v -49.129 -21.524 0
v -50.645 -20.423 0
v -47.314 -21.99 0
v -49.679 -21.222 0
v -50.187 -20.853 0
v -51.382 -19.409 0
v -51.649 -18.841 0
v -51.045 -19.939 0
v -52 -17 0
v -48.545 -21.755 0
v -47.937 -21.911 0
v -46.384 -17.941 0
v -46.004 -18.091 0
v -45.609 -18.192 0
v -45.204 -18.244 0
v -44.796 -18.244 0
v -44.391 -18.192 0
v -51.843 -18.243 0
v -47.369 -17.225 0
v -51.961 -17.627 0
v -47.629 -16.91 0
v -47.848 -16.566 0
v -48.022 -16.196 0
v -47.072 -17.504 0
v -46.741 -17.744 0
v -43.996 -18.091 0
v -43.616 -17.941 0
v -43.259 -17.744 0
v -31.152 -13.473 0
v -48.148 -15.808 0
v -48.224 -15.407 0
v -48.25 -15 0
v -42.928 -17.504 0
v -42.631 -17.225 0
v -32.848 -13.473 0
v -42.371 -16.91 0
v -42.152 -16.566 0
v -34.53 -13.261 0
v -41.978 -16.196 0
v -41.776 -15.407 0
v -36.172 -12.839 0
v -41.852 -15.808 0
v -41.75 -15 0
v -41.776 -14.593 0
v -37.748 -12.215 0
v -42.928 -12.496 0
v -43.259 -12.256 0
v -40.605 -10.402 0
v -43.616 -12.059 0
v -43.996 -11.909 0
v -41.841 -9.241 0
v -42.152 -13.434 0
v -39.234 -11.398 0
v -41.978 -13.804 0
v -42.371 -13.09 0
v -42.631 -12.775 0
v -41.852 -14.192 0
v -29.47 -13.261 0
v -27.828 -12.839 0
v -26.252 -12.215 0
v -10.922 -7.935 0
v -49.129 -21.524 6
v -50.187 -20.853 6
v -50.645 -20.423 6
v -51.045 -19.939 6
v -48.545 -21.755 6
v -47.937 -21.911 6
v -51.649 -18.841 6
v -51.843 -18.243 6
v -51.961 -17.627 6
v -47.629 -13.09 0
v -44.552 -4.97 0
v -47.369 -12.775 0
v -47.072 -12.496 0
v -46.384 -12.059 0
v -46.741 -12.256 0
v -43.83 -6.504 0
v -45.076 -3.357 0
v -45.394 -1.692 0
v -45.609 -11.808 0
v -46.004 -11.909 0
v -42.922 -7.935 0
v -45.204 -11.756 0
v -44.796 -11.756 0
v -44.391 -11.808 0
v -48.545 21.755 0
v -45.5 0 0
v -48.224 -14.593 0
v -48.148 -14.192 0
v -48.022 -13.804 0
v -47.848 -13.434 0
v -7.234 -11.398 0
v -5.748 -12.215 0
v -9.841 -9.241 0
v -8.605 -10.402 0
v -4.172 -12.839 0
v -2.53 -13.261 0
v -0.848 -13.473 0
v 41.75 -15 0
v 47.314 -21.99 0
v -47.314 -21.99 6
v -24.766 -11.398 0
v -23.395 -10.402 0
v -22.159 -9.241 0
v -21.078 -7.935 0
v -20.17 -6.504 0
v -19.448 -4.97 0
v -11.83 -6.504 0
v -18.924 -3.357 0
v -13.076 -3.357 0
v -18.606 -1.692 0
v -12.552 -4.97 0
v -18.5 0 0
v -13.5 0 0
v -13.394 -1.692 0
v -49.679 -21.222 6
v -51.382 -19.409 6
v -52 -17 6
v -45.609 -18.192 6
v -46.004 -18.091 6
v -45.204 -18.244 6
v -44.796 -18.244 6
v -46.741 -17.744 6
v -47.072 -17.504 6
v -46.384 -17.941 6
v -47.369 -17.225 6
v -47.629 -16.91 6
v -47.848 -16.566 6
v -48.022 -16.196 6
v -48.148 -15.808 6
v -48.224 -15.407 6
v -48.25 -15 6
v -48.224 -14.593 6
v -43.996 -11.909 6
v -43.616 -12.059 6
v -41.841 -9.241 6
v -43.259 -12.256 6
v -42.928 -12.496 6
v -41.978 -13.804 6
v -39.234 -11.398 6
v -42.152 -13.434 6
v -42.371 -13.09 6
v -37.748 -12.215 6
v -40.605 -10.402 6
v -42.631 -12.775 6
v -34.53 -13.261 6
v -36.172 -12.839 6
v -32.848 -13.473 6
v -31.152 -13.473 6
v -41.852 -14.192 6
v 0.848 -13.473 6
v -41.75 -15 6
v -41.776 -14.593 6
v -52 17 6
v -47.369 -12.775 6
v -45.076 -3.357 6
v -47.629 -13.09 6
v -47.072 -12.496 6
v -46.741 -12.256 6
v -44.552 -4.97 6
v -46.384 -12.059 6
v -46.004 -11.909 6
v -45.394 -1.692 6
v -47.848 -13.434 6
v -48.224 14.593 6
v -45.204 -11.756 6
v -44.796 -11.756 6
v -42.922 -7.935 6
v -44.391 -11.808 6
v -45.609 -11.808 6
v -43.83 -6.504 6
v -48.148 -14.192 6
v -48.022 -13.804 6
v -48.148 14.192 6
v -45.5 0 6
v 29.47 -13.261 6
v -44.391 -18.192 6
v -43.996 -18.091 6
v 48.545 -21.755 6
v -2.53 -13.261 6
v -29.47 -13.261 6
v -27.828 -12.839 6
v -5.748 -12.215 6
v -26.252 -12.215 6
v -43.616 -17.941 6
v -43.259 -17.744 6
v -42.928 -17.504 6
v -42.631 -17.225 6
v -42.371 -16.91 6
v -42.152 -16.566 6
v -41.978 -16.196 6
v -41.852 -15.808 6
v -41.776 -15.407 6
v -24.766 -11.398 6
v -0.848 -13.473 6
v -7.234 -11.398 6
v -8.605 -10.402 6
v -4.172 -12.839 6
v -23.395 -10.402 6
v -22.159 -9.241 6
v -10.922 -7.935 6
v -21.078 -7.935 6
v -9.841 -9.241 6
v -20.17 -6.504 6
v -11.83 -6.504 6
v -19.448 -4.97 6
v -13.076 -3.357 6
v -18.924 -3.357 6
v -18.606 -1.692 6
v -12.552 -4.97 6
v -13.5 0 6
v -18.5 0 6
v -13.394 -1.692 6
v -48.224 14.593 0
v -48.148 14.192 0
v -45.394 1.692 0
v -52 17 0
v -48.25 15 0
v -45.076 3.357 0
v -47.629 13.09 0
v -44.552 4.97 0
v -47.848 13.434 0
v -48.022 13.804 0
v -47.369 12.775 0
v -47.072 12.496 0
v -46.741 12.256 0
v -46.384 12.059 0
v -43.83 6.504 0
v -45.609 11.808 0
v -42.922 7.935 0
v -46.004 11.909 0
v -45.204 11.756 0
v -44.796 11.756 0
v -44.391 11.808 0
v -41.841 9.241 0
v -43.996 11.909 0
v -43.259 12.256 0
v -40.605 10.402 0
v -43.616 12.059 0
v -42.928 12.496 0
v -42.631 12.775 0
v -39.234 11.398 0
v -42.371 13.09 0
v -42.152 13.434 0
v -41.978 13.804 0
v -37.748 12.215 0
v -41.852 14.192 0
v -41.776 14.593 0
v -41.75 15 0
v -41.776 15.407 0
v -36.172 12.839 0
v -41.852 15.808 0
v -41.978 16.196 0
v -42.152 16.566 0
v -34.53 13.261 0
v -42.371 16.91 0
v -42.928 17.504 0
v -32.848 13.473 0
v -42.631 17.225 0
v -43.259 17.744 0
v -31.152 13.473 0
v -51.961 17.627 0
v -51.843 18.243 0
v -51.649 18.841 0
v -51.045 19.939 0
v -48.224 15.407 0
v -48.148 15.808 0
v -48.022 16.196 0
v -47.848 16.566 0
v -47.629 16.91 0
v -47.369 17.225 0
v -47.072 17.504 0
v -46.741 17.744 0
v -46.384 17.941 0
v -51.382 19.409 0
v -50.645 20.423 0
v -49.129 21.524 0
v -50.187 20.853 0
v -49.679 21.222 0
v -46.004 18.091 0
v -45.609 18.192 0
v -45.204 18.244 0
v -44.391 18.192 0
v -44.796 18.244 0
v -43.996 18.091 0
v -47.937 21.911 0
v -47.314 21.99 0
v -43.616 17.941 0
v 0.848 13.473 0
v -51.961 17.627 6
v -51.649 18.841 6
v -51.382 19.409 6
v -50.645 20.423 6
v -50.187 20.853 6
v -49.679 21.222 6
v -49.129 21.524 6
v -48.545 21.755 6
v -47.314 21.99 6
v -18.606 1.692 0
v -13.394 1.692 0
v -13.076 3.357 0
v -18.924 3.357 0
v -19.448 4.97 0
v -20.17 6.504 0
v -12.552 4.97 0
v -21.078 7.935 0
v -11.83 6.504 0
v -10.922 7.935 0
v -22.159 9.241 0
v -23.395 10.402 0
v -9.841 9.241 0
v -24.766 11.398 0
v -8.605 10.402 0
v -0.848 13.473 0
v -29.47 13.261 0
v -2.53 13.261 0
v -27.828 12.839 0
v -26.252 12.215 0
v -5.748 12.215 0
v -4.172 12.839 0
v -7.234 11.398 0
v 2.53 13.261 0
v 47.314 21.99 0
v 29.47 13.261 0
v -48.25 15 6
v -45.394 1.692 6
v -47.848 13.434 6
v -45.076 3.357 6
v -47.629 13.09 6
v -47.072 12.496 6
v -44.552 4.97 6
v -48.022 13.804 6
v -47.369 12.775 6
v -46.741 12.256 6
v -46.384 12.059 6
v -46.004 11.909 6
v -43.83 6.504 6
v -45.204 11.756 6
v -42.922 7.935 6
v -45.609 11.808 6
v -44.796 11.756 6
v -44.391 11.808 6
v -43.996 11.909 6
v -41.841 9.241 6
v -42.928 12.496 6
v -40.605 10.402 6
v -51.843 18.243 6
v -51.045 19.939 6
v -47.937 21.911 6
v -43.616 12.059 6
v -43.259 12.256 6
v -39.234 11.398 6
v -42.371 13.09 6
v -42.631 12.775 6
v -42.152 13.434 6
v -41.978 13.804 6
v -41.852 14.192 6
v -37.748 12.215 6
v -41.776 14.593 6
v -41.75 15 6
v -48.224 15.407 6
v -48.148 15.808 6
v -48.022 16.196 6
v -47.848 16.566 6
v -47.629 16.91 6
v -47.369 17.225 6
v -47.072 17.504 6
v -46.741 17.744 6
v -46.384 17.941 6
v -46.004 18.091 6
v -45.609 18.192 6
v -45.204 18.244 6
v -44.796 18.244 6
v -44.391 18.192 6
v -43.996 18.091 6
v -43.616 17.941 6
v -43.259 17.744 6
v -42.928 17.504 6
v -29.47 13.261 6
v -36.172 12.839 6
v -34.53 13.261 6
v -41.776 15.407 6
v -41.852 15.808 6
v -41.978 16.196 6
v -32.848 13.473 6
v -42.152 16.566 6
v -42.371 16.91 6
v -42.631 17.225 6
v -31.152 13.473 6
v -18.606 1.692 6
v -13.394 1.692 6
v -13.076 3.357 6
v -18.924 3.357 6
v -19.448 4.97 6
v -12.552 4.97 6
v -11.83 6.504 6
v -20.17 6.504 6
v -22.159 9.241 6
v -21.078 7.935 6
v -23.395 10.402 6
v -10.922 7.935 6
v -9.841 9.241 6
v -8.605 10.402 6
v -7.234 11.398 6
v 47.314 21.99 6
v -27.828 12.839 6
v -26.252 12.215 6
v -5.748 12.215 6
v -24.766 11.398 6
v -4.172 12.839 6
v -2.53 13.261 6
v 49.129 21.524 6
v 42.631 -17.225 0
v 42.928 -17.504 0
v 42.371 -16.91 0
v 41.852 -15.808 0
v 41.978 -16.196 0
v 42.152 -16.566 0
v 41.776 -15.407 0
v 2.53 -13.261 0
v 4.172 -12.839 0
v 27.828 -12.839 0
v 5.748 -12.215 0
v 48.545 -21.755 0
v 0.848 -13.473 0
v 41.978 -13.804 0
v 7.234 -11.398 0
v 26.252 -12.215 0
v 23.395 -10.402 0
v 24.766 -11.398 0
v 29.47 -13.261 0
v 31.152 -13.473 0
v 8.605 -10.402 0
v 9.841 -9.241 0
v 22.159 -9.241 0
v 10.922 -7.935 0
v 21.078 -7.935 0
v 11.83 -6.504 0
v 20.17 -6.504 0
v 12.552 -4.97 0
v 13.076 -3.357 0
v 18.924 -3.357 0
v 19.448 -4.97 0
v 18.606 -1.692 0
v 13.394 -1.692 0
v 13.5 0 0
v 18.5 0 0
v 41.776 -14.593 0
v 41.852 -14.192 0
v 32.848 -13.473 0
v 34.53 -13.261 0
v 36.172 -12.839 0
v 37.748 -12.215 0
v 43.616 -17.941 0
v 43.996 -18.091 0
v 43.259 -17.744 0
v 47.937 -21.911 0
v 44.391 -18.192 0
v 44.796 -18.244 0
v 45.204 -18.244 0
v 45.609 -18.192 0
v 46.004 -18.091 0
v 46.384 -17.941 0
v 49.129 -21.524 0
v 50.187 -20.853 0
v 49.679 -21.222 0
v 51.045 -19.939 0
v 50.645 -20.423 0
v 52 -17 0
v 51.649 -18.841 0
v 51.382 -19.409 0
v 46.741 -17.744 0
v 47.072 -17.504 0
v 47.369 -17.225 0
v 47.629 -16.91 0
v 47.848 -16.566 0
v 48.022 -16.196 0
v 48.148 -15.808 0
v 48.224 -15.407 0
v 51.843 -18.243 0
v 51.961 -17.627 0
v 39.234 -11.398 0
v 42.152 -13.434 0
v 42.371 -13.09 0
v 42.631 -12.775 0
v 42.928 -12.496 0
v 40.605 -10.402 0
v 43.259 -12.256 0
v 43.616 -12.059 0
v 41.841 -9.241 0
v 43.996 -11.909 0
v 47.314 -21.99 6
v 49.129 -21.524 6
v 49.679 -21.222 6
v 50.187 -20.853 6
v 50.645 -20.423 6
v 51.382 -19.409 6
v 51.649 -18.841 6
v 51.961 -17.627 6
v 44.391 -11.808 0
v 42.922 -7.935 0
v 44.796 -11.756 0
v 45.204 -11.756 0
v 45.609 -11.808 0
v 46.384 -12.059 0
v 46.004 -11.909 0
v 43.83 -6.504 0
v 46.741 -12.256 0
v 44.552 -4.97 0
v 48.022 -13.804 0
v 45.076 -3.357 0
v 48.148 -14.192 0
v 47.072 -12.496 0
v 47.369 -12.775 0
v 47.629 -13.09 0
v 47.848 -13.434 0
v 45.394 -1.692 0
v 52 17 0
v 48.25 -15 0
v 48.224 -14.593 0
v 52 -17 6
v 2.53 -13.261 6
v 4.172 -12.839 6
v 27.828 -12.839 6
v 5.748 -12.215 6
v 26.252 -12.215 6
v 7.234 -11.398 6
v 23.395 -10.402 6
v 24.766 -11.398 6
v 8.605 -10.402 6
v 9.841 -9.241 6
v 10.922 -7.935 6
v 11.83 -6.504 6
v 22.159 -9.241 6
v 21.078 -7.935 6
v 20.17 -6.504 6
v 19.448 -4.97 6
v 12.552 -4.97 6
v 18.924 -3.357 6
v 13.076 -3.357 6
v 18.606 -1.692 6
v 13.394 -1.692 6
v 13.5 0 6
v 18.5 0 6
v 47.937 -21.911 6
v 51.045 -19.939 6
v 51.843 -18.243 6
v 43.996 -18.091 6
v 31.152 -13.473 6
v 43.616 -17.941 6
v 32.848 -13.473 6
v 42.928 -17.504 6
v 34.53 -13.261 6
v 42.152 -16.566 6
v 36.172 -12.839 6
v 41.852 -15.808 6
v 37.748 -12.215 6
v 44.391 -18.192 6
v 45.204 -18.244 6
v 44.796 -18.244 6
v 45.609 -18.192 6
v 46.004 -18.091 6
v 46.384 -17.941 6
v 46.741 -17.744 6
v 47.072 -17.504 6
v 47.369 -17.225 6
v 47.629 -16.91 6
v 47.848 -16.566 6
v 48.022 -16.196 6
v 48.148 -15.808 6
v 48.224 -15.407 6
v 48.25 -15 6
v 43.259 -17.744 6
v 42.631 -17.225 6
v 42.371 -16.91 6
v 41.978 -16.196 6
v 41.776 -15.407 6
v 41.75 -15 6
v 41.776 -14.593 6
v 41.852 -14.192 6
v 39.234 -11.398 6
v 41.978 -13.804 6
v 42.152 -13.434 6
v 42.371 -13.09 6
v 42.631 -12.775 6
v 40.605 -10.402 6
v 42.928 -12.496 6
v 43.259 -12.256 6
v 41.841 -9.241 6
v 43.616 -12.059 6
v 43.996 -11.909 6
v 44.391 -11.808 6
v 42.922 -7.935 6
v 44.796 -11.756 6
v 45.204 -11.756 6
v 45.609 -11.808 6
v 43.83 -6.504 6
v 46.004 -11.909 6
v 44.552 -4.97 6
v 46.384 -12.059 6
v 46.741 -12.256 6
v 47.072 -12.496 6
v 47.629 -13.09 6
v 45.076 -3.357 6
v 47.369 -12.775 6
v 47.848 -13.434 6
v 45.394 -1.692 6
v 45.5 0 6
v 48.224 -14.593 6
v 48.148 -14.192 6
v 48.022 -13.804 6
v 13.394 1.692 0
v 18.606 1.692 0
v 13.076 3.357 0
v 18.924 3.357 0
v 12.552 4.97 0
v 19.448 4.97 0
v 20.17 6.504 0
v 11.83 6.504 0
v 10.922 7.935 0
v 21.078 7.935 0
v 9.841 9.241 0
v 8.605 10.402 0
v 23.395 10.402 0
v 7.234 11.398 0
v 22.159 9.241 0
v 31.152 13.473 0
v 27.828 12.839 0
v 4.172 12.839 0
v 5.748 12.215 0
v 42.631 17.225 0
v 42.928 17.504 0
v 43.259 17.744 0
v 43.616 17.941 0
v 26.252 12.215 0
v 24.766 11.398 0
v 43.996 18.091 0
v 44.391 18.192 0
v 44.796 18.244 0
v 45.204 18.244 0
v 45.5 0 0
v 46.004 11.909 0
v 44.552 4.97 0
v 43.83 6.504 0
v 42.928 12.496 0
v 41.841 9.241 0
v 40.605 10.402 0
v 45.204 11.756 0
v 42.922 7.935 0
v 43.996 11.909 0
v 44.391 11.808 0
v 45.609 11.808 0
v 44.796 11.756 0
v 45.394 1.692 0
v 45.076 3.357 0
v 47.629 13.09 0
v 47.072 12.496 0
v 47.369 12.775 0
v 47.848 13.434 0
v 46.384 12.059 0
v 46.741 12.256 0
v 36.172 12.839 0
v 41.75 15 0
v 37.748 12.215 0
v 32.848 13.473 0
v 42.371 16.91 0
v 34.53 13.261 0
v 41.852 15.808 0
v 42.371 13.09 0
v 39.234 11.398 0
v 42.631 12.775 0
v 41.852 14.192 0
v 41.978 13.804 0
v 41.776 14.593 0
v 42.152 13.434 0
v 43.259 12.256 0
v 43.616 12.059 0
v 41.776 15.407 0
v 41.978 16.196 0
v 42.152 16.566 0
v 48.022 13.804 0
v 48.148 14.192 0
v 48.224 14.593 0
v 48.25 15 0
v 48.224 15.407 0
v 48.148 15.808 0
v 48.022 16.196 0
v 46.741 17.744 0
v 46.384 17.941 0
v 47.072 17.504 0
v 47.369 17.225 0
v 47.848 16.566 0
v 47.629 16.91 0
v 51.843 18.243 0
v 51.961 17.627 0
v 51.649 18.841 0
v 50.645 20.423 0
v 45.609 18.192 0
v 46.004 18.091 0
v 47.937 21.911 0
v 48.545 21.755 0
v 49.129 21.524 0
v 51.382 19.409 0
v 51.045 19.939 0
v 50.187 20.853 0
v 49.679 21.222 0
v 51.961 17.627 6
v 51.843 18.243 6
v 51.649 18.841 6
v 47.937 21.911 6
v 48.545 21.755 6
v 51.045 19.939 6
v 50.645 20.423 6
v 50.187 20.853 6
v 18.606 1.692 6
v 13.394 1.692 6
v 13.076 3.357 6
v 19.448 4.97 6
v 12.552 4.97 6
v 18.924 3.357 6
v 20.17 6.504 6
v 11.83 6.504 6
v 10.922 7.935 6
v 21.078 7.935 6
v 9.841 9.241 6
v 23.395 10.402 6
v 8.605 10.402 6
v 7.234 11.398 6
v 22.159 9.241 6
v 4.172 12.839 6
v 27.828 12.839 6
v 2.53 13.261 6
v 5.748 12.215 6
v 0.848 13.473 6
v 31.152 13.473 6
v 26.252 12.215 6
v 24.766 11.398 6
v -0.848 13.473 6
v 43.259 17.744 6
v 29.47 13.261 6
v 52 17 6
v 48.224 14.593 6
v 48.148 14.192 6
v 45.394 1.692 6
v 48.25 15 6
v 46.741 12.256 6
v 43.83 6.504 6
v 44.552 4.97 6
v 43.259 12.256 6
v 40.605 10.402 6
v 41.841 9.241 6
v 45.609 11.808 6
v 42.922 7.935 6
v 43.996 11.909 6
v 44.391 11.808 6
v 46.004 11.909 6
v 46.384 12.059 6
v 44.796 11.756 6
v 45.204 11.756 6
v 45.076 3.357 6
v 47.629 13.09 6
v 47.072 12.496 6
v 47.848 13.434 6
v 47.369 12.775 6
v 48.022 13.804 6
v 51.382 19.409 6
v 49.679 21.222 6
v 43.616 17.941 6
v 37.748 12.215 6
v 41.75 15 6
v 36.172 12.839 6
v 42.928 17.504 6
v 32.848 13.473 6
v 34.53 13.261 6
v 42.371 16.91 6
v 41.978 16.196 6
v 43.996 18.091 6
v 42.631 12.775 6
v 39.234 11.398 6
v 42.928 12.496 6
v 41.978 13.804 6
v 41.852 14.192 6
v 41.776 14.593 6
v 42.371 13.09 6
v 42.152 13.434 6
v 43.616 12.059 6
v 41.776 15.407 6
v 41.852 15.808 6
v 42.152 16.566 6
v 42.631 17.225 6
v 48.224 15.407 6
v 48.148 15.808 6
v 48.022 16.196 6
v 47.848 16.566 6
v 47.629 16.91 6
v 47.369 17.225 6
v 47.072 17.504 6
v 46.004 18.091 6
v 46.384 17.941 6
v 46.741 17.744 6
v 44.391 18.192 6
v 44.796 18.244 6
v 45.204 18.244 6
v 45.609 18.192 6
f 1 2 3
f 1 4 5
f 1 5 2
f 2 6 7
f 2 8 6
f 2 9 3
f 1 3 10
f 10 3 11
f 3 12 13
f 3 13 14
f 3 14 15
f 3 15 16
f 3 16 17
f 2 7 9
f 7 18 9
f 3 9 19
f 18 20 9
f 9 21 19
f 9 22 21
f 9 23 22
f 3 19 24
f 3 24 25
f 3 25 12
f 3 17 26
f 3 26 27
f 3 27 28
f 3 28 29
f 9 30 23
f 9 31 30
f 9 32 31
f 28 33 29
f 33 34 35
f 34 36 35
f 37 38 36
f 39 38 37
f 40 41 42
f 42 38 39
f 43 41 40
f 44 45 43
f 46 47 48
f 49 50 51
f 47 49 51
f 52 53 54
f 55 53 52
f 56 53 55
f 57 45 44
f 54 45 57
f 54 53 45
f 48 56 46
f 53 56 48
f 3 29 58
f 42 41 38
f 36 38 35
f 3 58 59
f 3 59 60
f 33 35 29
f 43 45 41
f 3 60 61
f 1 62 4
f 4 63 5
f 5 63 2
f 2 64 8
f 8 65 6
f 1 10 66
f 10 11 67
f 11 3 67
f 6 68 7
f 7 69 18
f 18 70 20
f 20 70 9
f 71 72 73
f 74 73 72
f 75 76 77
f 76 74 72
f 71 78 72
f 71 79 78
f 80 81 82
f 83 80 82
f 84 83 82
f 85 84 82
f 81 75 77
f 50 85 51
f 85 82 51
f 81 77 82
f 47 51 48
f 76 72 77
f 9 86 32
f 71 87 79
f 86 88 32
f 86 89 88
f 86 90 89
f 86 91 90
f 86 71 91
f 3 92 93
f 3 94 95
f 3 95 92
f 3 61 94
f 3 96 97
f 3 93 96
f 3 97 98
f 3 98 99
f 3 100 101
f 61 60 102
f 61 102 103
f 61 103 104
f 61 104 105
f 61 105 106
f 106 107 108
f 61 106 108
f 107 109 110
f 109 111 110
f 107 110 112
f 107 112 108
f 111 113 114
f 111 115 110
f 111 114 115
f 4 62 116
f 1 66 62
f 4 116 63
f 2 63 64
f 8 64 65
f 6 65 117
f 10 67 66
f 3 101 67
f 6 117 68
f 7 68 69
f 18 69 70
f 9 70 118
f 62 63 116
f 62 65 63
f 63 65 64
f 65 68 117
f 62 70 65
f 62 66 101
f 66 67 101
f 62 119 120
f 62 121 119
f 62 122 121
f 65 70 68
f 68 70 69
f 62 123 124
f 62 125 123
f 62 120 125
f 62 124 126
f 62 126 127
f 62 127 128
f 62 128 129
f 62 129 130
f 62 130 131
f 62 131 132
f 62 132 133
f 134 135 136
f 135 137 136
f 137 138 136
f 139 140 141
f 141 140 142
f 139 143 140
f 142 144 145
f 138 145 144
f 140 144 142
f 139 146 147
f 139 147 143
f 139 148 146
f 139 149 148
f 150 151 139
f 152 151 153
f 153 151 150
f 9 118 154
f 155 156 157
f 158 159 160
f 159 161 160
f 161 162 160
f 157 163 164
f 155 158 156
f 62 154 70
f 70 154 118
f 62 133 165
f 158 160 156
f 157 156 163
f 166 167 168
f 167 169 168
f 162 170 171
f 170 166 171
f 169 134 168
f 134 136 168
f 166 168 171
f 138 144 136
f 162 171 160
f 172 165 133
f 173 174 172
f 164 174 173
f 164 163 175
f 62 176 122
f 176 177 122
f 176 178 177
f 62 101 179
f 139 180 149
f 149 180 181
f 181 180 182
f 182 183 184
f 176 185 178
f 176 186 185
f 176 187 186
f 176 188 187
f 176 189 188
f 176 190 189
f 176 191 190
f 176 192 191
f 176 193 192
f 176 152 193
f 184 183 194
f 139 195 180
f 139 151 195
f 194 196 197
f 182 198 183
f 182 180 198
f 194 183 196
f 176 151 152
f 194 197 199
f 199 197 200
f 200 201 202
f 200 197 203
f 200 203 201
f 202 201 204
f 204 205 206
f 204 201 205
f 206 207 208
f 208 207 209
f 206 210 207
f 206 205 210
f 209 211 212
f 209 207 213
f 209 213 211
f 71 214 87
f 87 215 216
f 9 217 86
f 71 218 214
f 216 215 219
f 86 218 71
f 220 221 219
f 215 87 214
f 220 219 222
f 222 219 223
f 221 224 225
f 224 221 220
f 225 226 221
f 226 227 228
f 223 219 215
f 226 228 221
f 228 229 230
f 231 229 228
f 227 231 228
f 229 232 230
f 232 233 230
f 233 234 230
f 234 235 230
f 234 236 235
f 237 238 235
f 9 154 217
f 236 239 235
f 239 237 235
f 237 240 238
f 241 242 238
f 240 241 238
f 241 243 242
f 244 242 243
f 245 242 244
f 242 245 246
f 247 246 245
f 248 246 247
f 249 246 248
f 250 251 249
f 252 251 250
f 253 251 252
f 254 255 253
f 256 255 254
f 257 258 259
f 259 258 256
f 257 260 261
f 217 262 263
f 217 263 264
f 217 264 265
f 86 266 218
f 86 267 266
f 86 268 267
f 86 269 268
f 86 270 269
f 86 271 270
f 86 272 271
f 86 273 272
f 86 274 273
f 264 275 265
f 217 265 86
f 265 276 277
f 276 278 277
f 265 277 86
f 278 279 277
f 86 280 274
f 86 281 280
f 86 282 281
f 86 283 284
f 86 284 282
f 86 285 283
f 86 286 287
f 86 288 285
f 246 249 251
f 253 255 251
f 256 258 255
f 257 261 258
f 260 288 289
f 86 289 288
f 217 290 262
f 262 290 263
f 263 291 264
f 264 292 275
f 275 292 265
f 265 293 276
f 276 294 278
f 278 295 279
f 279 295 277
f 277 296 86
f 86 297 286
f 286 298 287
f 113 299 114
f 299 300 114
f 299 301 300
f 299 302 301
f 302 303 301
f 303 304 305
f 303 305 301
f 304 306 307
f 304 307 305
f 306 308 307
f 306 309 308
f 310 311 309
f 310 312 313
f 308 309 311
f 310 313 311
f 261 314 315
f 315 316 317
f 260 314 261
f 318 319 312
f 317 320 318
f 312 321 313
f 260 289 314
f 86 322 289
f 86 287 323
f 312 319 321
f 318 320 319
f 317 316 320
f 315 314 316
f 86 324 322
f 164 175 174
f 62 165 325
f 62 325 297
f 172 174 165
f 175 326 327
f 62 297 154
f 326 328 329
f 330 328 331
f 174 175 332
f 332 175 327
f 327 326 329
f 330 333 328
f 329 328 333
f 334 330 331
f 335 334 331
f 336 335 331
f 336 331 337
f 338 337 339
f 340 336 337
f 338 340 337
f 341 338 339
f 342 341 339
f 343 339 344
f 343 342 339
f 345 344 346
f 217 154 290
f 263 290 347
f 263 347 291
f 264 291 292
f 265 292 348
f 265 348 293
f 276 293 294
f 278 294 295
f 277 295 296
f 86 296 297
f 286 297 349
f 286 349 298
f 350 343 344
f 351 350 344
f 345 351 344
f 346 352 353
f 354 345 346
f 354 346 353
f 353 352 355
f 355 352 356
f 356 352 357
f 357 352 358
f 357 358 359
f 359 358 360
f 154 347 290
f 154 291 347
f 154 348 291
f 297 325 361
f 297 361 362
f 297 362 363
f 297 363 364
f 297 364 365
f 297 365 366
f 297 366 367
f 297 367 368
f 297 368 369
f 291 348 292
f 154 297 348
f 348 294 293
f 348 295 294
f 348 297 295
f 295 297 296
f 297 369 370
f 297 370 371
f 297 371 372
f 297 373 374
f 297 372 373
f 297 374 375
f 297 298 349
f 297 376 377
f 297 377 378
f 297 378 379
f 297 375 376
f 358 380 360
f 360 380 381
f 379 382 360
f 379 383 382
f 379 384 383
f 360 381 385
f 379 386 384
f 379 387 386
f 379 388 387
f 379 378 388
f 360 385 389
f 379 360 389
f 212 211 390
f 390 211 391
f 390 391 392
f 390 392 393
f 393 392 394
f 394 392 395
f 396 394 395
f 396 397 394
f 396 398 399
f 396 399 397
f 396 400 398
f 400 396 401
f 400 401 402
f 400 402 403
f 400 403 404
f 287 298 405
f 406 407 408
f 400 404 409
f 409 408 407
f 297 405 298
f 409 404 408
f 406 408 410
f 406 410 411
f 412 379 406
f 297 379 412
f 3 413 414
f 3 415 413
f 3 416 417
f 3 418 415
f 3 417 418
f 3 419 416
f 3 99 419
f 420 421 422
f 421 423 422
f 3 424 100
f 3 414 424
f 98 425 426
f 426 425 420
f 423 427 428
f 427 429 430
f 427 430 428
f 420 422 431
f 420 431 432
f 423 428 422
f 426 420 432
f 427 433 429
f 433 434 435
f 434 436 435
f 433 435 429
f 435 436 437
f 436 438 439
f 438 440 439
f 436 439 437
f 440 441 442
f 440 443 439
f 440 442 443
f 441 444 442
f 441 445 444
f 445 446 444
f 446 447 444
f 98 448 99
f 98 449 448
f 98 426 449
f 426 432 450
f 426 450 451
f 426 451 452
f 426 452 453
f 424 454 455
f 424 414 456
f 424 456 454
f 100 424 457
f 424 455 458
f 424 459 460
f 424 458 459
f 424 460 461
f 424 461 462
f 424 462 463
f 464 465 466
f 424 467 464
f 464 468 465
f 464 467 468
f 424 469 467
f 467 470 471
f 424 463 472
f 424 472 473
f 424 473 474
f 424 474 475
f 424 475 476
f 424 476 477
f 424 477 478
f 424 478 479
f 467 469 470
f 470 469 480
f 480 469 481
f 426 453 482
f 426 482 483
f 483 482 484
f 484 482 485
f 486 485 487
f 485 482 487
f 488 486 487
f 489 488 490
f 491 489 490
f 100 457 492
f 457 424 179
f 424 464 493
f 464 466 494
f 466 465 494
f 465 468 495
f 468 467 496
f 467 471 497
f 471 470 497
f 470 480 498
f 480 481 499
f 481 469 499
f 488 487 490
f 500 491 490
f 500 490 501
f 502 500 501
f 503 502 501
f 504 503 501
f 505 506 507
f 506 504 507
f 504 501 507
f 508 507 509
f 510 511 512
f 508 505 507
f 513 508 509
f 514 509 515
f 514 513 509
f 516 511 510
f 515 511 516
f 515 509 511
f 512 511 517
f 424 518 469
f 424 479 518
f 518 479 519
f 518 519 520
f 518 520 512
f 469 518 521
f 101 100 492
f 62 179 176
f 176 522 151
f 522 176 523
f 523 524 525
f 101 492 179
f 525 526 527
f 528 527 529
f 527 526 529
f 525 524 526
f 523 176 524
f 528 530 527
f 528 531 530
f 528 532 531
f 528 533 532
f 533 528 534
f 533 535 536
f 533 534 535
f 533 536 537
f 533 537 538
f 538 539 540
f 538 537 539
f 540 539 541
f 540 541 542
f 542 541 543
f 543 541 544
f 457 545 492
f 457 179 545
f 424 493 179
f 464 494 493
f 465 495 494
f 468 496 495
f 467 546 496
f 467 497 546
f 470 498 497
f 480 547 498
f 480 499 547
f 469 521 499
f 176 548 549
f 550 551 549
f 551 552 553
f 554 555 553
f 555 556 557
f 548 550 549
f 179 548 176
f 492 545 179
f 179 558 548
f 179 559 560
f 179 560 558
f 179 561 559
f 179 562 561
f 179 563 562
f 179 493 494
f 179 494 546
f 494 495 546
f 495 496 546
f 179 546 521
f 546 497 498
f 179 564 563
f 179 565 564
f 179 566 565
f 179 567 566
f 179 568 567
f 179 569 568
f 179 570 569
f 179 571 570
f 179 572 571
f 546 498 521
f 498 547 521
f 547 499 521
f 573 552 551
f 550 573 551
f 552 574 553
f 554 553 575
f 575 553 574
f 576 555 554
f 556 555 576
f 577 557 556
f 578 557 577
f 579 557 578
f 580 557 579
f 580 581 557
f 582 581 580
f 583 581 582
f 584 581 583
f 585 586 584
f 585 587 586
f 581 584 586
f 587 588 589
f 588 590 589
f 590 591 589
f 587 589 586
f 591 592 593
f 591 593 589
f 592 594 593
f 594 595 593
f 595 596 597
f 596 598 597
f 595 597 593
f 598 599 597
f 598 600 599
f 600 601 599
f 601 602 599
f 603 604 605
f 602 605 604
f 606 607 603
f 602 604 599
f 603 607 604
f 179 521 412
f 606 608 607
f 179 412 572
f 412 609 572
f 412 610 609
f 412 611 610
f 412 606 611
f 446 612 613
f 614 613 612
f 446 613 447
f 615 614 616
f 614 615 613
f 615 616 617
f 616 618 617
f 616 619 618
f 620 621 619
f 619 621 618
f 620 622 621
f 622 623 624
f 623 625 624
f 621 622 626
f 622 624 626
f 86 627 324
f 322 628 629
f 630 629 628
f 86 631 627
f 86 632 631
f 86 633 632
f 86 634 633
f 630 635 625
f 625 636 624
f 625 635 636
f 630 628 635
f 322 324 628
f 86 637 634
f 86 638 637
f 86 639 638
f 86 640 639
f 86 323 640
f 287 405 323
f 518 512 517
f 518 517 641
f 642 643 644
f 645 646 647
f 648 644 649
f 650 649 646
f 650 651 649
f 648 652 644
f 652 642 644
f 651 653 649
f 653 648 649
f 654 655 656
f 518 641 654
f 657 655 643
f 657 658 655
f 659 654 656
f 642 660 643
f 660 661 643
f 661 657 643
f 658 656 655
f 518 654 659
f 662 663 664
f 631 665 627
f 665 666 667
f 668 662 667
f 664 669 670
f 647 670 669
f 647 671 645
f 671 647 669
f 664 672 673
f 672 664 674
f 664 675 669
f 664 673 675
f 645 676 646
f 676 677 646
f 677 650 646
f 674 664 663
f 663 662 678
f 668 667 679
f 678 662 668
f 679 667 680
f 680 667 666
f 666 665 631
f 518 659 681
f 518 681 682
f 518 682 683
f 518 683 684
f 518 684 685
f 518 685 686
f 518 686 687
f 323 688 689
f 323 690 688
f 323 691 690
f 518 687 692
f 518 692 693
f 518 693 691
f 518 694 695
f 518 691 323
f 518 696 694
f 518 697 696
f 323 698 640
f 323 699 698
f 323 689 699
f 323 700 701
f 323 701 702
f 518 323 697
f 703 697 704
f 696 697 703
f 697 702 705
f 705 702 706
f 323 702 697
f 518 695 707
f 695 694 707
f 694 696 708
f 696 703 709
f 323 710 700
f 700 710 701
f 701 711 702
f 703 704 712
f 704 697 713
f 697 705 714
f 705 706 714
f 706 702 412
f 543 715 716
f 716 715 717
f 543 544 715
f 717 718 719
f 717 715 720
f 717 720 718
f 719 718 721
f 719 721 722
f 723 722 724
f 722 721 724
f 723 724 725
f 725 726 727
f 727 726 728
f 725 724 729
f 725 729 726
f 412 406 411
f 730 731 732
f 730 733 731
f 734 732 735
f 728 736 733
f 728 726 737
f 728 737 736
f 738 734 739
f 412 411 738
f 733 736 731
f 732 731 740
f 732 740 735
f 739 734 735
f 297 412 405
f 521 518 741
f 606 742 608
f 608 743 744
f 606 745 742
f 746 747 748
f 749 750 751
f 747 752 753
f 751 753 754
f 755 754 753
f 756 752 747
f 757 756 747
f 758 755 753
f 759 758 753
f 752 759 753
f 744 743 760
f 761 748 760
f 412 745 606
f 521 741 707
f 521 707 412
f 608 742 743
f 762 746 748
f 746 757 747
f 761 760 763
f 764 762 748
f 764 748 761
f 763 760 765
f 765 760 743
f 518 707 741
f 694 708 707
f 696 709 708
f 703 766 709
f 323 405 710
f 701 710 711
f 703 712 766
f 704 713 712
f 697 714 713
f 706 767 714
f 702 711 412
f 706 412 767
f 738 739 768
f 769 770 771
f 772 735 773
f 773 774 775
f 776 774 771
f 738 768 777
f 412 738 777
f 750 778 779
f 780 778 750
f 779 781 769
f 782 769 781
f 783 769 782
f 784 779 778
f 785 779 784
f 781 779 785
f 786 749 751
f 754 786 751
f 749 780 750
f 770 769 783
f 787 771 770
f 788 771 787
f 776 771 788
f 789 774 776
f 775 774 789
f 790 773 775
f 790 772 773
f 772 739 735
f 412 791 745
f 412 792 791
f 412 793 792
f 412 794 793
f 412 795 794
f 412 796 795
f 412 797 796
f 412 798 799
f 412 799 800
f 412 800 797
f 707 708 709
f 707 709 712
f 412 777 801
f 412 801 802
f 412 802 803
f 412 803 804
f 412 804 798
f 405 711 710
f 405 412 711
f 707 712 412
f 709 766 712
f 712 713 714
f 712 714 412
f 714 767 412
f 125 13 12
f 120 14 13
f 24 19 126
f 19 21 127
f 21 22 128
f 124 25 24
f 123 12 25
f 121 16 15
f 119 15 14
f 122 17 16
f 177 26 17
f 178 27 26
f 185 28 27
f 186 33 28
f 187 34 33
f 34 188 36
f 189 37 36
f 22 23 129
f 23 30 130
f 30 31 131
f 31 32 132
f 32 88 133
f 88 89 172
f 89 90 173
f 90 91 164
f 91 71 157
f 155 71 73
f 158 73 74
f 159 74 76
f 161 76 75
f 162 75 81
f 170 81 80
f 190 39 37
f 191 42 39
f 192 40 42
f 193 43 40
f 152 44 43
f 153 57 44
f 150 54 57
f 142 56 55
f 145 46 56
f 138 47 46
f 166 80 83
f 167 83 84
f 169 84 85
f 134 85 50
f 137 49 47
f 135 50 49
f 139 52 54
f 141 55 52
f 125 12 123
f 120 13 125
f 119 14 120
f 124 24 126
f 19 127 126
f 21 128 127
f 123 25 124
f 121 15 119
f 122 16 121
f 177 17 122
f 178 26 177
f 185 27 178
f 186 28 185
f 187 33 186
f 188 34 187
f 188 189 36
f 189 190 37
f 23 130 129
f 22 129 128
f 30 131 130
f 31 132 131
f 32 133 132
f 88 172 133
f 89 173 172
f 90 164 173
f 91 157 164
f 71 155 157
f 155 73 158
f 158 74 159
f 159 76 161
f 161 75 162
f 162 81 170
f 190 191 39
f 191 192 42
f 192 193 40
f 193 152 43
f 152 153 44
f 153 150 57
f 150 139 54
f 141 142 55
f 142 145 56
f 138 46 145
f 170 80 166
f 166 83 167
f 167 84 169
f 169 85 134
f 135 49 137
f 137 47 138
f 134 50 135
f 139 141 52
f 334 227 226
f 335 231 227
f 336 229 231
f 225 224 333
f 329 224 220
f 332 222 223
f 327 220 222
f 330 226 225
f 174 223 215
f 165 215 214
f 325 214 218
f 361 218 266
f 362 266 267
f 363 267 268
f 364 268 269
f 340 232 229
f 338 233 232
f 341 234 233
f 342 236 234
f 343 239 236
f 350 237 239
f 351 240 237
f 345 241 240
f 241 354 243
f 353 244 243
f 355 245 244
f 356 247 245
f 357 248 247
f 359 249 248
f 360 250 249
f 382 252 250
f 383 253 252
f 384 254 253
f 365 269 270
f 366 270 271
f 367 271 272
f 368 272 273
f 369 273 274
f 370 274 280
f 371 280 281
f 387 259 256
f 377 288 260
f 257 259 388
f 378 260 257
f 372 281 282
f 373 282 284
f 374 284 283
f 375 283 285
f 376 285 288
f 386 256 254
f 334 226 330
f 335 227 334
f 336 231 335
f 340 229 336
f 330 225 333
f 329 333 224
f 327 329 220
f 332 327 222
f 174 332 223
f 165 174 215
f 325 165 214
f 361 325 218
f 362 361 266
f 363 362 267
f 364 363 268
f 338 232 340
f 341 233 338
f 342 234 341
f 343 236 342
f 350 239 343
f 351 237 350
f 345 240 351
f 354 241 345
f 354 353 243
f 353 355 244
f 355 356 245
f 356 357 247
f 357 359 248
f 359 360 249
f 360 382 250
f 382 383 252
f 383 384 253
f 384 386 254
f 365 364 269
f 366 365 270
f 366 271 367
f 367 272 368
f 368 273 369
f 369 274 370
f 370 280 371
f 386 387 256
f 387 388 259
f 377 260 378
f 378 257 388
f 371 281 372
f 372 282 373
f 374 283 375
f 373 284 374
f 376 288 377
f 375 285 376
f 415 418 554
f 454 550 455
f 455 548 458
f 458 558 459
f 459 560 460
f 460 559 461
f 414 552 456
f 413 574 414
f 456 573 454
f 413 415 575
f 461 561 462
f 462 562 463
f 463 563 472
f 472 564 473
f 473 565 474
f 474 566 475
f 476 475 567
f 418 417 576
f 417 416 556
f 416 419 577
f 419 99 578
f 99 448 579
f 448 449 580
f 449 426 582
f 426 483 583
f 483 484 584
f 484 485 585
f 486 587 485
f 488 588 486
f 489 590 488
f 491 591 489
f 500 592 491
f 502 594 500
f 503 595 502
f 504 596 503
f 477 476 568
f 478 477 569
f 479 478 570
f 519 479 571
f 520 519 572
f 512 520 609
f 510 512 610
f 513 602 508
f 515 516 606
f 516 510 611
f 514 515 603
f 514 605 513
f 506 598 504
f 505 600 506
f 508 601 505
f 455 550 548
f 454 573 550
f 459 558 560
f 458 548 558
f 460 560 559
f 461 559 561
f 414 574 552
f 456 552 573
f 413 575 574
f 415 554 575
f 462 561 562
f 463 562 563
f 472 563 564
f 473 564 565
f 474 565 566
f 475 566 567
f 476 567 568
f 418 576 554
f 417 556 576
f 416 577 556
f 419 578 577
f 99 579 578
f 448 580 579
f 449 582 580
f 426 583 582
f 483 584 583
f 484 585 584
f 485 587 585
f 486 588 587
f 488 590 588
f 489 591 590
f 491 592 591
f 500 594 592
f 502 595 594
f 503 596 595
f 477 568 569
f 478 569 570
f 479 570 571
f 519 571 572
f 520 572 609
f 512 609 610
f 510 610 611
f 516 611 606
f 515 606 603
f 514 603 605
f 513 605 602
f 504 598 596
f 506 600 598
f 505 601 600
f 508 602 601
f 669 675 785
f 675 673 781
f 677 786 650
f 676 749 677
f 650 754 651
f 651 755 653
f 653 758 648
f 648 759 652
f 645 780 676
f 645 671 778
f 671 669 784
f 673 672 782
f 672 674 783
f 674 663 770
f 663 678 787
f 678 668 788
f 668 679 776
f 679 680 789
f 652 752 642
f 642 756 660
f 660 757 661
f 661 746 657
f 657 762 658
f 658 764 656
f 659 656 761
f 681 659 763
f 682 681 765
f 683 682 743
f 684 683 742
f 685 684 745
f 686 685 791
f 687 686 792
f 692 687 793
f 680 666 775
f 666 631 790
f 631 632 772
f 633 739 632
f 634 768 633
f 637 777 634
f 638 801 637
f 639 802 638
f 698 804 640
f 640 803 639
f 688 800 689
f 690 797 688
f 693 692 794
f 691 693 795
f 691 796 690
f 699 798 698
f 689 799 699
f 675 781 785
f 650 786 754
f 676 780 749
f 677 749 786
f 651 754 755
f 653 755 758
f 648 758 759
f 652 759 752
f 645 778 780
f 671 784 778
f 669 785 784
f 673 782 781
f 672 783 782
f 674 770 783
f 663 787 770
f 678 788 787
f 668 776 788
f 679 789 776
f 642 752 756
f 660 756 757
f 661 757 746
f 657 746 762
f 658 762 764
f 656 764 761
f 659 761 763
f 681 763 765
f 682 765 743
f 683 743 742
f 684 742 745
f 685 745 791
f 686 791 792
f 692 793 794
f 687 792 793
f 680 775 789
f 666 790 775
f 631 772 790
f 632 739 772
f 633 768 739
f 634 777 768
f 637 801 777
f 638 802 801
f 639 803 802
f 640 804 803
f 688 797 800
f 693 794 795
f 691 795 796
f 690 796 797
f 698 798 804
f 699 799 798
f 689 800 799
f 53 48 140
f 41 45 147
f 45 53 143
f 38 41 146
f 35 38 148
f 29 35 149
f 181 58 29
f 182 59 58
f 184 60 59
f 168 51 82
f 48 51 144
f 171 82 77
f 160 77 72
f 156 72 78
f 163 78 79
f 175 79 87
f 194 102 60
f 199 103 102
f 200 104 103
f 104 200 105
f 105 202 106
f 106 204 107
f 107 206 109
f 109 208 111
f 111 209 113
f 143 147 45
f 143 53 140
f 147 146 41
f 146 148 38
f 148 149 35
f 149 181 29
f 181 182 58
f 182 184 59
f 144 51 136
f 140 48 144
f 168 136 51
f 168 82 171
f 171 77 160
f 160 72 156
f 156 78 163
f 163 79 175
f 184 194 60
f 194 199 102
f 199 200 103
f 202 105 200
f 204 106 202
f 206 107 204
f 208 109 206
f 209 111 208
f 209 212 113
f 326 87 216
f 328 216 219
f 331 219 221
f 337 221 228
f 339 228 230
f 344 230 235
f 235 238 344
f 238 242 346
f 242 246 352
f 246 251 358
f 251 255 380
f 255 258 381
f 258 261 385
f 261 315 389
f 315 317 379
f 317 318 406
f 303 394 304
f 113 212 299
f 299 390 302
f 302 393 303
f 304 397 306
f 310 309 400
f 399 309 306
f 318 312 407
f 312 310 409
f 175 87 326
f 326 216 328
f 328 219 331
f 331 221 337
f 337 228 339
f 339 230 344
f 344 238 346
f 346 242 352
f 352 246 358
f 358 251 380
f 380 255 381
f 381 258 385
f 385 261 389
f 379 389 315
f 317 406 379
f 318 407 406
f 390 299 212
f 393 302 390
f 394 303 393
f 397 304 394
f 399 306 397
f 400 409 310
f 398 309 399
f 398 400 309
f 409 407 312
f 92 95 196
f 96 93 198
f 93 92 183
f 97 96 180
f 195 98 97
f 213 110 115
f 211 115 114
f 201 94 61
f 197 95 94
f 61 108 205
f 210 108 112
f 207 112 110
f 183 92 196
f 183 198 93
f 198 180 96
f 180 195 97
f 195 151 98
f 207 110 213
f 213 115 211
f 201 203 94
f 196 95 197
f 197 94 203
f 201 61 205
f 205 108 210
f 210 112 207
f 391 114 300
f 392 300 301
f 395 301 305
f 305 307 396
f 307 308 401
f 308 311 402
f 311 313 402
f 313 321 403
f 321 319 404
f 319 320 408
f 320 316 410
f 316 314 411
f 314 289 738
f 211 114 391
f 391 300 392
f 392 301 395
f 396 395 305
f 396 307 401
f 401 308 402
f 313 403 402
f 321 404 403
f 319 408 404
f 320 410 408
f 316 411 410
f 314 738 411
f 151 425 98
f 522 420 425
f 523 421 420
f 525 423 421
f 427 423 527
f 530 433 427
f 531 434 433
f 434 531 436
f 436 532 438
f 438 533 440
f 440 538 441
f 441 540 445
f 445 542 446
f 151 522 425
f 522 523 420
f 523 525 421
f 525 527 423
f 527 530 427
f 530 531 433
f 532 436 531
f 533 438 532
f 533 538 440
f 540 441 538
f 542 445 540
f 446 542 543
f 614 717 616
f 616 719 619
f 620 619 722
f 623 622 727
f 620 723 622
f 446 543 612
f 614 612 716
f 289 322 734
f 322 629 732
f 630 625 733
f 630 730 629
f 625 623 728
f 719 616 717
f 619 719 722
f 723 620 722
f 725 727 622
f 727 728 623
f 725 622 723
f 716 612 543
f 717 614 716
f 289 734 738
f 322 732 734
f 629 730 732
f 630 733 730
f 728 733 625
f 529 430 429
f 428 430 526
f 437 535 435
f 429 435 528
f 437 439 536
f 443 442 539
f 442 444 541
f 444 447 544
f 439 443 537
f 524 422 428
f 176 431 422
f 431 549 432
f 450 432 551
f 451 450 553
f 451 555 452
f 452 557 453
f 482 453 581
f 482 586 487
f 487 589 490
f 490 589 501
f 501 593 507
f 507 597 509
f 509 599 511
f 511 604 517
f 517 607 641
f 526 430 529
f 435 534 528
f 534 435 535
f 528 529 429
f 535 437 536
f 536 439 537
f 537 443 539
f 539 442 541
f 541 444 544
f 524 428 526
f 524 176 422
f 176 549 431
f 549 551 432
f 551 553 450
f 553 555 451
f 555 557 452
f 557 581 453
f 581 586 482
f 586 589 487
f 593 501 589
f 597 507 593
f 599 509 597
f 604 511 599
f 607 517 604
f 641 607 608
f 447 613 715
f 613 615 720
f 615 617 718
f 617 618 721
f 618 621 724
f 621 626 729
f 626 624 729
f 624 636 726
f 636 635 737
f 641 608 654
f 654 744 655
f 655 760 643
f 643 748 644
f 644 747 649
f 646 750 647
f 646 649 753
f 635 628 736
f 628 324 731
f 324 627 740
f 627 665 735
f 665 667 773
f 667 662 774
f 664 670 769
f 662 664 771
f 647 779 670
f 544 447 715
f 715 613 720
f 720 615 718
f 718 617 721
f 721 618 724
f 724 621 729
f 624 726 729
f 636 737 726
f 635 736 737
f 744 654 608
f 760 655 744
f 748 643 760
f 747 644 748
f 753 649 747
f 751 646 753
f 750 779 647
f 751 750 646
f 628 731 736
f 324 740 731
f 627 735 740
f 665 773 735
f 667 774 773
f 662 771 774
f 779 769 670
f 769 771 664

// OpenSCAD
$fn = 50;

difference() {
	union() {
		hull() {
			translate(v = [-47.0, 17.0, 0]) {
				cylinder(h = 6, r = 5);
			}
			translate(v = [47.0, 17.0, 0]) {
				cylinder(h = 6, r = 5);
			}
			translate(v = [-47.0, -17.0, 0]) {
				cylinder(h = 6, r = 5);
			}
			translate(v = [47.0, -17.0, 0]) {
				cylinder(h = 6, r = 5);
			}
		}
	}
	union() {
		translate(v = [-45.0, -15.0, -100.0]) {
			cylinder(h = 200, r = 3.25);
		}
		translate(v = [-45.0, 15.0, -100.0]) {
			cylinder(h = 200, r = 3.25);
		}
		translate(v = [45.0, -15.0, -100.0]) {
			cylinder(h = 200, r = 3.25);
		}
		translate(v = [45.0, 15.0, -100.0]) {
			cylinder(h = 200, r = 3.25);
		}
		translate(v = [-45.0, -15.0, -100.0]) {
			cylinder(h = 200, r = 1.8);
		}
		translate(v = [-45.0, 15.0, -100.0]) {
			cylinder(h = 200, r = 1.8);
		}
		translate(v = [45.0, -15.0, -100.0]) {
			cylinder(h = 200, r = 1.8);
		}
		translate(v = [45.0, 15.0, -100.0]) {
			cylinder(h = 200, r = 1.8);
		}
		translate(v = [-32.0, 0, 0.0]) {
			cylinder(h = 6, r = 13.5);
		}
		cylinder(h = 6, r = 13.5);
		translate(v = [32.0, 0, 0.0]) {
			cylinder(h = 6, r = 13.5);
		}
	}
}
